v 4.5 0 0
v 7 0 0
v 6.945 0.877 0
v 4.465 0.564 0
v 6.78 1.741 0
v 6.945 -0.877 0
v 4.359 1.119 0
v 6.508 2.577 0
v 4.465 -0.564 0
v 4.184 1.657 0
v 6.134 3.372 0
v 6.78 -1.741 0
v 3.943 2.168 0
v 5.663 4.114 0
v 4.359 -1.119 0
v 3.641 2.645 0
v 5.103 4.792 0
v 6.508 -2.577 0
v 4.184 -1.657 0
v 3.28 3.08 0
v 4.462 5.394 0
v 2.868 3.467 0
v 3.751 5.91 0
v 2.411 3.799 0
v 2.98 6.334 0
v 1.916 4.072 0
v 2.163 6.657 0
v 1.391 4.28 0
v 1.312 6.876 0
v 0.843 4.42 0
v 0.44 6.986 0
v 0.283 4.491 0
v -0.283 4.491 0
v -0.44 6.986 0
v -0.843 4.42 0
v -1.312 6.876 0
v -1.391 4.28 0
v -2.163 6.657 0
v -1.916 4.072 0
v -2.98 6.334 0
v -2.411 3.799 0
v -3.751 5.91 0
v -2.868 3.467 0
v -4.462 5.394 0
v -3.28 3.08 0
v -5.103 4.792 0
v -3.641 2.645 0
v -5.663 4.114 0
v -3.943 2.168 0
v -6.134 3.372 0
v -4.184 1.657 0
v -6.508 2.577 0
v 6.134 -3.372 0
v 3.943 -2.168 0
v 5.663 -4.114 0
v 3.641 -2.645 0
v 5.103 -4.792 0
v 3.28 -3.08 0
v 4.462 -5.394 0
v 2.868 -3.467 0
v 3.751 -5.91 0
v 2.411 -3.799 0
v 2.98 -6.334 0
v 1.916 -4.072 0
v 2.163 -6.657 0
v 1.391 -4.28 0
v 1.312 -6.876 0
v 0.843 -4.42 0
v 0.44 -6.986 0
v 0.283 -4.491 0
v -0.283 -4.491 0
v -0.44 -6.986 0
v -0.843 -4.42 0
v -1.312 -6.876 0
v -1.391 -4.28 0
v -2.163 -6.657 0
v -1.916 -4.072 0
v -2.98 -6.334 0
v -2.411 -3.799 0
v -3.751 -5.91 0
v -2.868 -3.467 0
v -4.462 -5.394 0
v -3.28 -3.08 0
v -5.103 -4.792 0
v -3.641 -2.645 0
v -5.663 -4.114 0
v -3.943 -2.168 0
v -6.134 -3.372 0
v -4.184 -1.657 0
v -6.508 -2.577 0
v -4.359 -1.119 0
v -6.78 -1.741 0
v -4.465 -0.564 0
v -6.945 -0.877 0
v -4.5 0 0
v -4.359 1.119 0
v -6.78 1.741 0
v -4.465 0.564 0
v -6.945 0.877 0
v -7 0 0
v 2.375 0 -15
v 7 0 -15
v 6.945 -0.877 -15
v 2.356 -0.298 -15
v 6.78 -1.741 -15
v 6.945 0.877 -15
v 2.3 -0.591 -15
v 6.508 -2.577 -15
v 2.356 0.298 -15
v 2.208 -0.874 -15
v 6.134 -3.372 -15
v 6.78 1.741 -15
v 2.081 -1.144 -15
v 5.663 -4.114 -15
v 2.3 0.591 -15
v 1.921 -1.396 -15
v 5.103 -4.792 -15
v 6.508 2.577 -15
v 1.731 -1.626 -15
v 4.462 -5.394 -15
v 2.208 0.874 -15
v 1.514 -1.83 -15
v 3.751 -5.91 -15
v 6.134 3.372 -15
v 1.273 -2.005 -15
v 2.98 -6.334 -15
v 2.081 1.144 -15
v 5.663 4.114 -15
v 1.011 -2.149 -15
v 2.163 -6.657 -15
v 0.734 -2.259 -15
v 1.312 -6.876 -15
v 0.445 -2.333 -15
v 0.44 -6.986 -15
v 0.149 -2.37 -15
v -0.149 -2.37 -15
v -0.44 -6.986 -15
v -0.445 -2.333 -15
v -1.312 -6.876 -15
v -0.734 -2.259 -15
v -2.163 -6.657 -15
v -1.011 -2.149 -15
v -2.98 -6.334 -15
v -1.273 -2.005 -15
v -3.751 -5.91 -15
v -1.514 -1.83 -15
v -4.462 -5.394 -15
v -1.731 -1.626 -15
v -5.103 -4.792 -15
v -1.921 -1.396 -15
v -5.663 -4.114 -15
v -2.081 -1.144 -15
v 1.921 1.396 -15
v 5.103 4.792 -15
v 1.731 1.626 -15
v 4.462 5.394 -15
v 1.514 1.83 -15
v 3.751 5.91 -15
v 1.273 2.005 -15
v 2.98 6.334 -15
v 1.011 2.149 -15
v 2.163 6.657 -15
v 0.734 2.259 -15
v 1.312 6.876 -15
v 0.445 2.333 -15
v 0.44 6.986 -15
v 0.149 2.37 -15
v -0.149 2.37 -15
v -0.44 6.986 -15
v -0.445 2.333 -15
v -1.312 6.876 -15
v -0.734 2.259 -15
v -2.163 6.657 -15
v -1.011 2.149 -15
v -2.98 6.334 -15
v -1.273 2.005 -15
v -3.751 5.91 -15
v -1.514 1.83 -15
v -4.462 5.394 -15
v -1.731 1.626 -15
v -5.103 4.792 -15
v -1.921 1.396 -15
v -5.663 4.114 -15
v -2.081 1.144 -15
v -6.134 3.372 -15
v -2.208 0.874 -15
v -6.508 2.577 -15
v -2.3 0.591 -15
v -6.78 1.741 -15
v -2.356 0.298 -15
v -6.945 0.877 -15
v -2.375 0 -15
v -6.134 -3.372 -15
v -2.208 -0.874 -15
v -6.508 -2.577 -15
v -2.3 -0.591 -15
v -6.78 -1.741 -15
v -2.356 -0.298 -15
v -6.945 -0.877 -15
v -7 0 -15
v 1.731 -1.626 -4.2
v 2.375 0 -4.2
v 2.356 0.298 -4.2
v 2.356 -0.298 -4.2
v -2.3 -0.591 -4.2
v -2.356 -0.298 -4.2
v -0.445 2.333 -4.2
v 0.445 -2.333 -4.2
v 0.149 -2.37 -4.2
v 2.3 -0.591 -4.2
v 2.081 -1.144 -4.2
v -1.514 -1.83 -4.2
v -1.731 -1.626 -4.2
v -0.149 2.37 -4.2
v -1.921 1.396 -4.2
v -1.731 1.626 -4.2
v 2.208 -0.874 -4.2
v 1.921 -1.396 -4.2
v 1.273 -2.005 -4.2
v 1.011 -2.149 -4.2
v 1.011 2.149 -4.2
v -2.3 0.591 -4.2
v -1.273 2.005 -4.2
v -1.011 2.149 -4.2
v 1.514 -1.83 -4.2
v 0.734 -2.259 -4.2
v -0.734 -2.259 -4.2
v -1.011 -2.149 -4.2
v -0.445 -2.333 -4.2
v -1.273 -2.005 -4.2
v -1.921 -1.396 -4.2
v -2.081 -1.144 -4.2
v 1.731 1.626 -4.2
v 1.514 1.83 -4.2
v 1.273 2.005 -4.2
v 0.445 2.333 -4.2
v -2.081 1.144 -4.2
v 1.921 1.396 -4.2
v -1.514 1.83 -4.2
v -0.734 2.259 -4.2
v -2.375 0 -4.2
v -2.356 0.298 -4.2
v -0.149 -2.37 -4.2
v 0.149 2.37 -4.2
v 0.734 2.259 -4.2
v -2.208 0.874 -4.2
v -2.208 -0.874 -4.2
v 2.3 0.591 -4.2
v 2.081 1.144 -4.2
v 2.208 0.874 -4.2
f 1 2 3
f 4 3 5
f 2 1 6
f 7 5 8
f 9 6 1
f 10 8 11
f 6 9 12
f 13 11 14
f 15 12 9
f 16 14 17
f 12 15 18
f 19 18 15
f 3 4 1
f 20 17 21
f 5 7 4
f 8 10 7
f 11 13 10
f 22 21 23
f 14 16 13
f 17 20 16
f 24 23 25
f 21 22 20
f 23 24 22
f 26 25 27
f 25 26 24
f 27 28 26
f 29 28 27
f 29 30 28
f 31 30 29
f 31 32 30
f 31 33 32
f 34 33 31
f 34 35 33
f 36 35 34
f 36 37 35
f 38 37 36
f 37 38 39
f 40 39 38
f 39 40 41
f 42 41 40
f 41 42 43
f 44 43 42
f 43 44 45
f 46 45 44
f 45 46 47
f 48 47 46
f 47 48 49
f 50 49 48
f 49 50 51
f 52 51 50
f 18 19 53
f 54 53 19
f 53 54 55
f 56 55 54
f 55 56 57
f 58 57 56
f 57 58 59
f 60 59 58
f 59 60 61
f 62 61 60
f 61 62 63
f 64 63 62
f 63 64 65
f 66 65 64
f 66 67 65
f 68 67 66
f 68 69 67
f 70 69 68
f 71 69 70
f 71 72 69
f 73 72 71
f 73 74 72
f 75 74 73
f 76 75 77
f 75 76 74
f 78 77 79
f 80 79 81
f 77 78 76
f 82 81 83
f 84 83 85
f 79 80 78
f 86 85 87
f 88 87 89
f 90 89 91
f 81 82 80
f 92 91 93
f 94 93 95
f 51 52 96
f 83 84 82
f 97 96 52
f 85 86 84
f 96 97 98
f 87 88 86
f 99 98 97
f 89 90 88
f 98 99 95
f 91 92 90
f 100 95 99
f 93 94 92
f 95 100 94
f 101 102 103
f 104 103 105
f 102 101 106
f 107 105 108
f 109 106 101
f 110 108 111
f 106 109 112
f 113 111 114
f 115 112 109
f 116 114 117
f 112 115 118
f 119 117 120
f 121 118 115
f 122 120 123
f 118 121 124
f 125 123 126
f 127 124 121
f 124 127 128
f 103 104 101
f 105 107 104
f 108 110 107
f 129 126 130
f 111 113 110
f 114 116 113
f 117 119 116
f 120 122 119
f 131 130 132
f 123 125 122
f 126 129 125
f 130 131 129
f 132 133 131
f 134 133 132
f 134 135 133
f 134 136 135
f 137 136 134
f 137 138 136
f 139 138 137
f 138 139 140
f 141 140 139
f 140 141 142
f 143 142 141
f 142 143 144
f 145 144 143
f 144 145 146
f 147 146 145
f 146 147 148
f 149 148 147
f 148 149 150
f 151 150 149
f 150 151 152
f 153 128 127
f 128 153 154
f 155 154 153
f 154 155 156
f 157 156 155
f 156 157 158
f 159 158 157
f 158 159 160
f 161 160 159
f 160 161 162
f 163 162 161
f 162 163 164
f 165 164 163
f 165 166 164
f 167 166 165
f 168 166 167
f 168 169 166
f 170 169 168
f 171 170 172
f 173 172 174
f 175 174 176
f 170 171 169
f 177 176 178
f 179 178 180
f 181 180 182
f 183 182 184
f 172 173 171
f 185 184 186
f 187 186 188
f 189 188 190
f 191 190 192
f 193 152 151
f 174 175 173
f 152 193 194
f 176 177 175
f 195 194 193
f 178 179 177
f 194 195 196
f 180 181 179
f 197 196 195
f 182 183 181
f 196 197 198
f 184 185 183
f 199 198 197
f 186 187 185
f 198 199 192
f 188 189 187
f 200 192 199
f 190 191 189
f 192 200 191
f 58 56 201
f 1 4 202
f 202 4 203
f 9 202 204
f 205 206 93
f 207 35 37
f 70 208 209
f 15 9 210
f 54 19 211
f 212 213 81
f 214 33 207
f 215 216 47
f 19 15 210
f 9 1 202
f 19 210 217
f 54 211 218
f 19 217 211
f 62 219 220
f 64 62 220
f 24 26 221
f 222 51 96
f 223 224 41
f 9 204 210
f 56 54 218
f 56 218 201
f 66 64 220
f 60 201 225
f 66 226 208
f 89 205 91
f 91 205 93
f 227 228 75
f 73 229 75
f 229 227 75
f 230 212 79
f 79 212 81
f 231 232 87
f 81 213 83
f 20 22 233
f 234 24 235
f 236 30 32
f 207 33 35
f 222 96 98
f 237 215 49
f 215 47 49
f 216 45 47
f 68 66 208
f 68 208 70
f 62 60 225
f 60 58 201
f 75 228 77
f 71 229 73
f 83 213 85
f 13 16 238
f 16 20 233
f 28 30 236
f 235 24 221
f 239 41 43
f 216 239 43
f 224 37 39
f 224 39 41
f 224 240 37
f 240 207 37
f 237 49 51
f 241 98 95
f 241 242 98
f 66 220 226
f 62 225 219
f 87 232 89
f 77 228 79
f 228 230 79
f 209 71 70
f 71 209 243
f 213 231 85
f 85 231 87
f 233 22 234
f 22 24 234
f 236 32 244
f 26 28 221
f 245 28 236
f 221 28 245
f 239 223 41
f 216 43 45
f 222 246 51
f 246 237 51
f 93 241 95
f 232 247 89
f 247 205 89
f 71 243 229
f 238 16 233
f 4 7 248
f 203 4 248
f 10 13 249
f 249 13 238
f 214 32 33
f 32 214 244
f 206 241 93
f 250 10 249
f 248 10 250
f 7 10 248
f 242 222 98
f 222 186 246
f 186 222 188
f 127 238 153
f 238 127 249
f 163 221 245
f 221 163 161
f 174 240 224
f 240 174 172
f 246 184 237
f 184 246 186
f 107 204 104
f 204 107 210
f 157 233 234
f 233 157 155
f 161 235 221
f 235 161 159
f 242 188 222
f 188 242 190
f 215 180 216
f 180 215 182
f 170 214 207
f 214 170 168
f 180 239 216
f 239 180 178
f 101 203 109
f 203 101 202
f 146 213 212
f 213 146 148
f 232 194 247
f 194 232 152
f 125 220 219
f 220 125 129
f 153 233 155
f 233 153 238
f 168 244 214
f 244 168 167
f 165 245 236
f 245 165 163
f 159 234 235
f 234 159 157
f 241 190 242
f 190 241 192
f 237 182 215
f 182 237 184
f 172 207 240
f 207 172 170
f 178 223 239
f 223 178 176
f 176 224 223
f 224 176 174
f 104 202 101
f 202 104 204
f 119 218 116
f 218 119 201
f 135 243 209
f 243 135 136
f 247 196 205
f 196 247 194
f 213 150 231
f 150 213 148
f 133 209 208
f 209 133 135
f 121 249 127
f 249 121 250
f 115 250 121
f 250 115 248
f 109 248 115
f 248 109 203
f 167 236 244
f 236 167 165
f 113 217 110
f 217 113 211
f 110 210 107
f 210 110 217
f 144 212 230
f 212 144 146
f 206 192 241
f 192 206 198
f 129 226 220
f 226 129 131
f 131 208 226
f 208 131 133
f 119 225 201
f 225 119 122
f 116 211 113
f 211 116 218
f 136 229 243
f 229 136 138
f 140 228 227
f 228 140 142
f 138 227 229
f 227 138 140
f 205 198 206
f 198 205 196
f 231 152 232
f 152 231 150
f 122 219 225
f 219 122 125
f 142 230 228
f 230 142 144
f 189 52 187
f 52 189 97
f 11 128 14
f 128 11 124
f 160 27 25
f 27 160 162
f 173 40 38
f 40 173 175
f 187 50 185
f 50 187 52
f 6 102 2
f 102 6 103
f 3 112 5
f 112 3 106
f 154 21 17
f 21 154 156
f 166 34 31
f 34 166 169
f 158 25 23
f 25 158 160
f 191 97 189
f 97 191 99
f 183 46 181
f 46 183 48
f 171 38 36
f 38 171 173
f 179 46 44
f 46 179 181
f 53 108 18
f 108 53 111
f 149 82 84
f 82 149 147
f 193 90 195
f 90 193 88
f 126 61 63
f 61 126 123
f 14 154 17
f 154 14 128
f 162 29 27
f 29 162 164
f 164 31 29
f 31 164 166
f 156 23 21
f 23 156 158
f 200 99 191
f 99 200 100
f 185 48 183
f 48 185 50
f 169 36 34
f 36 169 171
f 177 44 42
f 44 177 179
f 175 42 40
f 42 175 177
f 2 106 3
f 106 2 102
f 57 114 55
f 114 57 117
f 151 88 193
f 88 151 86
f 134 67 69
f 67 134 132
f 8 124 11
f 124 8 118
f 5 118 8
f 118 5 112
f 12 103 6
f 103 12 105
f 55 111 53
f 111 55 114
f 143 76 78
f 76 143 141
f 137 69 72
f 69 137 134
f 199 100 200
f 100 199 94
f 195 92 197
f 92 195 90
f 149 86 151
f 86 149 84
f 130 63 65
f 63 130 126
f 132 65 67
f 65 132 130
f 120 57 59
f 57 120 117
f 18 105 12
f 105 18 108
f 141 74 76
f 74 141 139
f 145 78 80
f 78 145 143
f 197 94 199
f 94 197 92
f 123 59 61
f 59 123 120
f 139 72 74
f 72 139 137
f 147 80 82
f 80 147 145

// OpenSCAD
$fn = 50;


difference() {
	union() {
		translate(v = [0, 0, -15.0000000000]) {
			cylinder(h = 15, r = 7.0000000000);
		}
		cylinder(h = 0, r = 10.0000000000);
	}
	union() {
		translate(v = [0, 0, 0]) {
			rotate(a = [0, 0, 0]) {
				difference() {
					union() {
						#translate(v = [0, 0, -15.0000000000]) {
							cylinder(h = 15, r = 2.2500000000);
						}
						#translate(v = [0, 0, -4.2000000000]) {
							cylinder(h = 4.2000000000, r = 7.0000000000, r1 = 2.3750000000, r2 = 4.5000000000);
						}
						#translate(v = [0, 0, -15.0000000000]) {
							cylinder(h = 15, r = 2.3750000000);
						}
						#translate(v = [0, 0, -15.0000000000]) {
							cylinder(h = 15, r = 2.2500000000);
						}
					}
					union();
				}
			}
		}
	}
}
